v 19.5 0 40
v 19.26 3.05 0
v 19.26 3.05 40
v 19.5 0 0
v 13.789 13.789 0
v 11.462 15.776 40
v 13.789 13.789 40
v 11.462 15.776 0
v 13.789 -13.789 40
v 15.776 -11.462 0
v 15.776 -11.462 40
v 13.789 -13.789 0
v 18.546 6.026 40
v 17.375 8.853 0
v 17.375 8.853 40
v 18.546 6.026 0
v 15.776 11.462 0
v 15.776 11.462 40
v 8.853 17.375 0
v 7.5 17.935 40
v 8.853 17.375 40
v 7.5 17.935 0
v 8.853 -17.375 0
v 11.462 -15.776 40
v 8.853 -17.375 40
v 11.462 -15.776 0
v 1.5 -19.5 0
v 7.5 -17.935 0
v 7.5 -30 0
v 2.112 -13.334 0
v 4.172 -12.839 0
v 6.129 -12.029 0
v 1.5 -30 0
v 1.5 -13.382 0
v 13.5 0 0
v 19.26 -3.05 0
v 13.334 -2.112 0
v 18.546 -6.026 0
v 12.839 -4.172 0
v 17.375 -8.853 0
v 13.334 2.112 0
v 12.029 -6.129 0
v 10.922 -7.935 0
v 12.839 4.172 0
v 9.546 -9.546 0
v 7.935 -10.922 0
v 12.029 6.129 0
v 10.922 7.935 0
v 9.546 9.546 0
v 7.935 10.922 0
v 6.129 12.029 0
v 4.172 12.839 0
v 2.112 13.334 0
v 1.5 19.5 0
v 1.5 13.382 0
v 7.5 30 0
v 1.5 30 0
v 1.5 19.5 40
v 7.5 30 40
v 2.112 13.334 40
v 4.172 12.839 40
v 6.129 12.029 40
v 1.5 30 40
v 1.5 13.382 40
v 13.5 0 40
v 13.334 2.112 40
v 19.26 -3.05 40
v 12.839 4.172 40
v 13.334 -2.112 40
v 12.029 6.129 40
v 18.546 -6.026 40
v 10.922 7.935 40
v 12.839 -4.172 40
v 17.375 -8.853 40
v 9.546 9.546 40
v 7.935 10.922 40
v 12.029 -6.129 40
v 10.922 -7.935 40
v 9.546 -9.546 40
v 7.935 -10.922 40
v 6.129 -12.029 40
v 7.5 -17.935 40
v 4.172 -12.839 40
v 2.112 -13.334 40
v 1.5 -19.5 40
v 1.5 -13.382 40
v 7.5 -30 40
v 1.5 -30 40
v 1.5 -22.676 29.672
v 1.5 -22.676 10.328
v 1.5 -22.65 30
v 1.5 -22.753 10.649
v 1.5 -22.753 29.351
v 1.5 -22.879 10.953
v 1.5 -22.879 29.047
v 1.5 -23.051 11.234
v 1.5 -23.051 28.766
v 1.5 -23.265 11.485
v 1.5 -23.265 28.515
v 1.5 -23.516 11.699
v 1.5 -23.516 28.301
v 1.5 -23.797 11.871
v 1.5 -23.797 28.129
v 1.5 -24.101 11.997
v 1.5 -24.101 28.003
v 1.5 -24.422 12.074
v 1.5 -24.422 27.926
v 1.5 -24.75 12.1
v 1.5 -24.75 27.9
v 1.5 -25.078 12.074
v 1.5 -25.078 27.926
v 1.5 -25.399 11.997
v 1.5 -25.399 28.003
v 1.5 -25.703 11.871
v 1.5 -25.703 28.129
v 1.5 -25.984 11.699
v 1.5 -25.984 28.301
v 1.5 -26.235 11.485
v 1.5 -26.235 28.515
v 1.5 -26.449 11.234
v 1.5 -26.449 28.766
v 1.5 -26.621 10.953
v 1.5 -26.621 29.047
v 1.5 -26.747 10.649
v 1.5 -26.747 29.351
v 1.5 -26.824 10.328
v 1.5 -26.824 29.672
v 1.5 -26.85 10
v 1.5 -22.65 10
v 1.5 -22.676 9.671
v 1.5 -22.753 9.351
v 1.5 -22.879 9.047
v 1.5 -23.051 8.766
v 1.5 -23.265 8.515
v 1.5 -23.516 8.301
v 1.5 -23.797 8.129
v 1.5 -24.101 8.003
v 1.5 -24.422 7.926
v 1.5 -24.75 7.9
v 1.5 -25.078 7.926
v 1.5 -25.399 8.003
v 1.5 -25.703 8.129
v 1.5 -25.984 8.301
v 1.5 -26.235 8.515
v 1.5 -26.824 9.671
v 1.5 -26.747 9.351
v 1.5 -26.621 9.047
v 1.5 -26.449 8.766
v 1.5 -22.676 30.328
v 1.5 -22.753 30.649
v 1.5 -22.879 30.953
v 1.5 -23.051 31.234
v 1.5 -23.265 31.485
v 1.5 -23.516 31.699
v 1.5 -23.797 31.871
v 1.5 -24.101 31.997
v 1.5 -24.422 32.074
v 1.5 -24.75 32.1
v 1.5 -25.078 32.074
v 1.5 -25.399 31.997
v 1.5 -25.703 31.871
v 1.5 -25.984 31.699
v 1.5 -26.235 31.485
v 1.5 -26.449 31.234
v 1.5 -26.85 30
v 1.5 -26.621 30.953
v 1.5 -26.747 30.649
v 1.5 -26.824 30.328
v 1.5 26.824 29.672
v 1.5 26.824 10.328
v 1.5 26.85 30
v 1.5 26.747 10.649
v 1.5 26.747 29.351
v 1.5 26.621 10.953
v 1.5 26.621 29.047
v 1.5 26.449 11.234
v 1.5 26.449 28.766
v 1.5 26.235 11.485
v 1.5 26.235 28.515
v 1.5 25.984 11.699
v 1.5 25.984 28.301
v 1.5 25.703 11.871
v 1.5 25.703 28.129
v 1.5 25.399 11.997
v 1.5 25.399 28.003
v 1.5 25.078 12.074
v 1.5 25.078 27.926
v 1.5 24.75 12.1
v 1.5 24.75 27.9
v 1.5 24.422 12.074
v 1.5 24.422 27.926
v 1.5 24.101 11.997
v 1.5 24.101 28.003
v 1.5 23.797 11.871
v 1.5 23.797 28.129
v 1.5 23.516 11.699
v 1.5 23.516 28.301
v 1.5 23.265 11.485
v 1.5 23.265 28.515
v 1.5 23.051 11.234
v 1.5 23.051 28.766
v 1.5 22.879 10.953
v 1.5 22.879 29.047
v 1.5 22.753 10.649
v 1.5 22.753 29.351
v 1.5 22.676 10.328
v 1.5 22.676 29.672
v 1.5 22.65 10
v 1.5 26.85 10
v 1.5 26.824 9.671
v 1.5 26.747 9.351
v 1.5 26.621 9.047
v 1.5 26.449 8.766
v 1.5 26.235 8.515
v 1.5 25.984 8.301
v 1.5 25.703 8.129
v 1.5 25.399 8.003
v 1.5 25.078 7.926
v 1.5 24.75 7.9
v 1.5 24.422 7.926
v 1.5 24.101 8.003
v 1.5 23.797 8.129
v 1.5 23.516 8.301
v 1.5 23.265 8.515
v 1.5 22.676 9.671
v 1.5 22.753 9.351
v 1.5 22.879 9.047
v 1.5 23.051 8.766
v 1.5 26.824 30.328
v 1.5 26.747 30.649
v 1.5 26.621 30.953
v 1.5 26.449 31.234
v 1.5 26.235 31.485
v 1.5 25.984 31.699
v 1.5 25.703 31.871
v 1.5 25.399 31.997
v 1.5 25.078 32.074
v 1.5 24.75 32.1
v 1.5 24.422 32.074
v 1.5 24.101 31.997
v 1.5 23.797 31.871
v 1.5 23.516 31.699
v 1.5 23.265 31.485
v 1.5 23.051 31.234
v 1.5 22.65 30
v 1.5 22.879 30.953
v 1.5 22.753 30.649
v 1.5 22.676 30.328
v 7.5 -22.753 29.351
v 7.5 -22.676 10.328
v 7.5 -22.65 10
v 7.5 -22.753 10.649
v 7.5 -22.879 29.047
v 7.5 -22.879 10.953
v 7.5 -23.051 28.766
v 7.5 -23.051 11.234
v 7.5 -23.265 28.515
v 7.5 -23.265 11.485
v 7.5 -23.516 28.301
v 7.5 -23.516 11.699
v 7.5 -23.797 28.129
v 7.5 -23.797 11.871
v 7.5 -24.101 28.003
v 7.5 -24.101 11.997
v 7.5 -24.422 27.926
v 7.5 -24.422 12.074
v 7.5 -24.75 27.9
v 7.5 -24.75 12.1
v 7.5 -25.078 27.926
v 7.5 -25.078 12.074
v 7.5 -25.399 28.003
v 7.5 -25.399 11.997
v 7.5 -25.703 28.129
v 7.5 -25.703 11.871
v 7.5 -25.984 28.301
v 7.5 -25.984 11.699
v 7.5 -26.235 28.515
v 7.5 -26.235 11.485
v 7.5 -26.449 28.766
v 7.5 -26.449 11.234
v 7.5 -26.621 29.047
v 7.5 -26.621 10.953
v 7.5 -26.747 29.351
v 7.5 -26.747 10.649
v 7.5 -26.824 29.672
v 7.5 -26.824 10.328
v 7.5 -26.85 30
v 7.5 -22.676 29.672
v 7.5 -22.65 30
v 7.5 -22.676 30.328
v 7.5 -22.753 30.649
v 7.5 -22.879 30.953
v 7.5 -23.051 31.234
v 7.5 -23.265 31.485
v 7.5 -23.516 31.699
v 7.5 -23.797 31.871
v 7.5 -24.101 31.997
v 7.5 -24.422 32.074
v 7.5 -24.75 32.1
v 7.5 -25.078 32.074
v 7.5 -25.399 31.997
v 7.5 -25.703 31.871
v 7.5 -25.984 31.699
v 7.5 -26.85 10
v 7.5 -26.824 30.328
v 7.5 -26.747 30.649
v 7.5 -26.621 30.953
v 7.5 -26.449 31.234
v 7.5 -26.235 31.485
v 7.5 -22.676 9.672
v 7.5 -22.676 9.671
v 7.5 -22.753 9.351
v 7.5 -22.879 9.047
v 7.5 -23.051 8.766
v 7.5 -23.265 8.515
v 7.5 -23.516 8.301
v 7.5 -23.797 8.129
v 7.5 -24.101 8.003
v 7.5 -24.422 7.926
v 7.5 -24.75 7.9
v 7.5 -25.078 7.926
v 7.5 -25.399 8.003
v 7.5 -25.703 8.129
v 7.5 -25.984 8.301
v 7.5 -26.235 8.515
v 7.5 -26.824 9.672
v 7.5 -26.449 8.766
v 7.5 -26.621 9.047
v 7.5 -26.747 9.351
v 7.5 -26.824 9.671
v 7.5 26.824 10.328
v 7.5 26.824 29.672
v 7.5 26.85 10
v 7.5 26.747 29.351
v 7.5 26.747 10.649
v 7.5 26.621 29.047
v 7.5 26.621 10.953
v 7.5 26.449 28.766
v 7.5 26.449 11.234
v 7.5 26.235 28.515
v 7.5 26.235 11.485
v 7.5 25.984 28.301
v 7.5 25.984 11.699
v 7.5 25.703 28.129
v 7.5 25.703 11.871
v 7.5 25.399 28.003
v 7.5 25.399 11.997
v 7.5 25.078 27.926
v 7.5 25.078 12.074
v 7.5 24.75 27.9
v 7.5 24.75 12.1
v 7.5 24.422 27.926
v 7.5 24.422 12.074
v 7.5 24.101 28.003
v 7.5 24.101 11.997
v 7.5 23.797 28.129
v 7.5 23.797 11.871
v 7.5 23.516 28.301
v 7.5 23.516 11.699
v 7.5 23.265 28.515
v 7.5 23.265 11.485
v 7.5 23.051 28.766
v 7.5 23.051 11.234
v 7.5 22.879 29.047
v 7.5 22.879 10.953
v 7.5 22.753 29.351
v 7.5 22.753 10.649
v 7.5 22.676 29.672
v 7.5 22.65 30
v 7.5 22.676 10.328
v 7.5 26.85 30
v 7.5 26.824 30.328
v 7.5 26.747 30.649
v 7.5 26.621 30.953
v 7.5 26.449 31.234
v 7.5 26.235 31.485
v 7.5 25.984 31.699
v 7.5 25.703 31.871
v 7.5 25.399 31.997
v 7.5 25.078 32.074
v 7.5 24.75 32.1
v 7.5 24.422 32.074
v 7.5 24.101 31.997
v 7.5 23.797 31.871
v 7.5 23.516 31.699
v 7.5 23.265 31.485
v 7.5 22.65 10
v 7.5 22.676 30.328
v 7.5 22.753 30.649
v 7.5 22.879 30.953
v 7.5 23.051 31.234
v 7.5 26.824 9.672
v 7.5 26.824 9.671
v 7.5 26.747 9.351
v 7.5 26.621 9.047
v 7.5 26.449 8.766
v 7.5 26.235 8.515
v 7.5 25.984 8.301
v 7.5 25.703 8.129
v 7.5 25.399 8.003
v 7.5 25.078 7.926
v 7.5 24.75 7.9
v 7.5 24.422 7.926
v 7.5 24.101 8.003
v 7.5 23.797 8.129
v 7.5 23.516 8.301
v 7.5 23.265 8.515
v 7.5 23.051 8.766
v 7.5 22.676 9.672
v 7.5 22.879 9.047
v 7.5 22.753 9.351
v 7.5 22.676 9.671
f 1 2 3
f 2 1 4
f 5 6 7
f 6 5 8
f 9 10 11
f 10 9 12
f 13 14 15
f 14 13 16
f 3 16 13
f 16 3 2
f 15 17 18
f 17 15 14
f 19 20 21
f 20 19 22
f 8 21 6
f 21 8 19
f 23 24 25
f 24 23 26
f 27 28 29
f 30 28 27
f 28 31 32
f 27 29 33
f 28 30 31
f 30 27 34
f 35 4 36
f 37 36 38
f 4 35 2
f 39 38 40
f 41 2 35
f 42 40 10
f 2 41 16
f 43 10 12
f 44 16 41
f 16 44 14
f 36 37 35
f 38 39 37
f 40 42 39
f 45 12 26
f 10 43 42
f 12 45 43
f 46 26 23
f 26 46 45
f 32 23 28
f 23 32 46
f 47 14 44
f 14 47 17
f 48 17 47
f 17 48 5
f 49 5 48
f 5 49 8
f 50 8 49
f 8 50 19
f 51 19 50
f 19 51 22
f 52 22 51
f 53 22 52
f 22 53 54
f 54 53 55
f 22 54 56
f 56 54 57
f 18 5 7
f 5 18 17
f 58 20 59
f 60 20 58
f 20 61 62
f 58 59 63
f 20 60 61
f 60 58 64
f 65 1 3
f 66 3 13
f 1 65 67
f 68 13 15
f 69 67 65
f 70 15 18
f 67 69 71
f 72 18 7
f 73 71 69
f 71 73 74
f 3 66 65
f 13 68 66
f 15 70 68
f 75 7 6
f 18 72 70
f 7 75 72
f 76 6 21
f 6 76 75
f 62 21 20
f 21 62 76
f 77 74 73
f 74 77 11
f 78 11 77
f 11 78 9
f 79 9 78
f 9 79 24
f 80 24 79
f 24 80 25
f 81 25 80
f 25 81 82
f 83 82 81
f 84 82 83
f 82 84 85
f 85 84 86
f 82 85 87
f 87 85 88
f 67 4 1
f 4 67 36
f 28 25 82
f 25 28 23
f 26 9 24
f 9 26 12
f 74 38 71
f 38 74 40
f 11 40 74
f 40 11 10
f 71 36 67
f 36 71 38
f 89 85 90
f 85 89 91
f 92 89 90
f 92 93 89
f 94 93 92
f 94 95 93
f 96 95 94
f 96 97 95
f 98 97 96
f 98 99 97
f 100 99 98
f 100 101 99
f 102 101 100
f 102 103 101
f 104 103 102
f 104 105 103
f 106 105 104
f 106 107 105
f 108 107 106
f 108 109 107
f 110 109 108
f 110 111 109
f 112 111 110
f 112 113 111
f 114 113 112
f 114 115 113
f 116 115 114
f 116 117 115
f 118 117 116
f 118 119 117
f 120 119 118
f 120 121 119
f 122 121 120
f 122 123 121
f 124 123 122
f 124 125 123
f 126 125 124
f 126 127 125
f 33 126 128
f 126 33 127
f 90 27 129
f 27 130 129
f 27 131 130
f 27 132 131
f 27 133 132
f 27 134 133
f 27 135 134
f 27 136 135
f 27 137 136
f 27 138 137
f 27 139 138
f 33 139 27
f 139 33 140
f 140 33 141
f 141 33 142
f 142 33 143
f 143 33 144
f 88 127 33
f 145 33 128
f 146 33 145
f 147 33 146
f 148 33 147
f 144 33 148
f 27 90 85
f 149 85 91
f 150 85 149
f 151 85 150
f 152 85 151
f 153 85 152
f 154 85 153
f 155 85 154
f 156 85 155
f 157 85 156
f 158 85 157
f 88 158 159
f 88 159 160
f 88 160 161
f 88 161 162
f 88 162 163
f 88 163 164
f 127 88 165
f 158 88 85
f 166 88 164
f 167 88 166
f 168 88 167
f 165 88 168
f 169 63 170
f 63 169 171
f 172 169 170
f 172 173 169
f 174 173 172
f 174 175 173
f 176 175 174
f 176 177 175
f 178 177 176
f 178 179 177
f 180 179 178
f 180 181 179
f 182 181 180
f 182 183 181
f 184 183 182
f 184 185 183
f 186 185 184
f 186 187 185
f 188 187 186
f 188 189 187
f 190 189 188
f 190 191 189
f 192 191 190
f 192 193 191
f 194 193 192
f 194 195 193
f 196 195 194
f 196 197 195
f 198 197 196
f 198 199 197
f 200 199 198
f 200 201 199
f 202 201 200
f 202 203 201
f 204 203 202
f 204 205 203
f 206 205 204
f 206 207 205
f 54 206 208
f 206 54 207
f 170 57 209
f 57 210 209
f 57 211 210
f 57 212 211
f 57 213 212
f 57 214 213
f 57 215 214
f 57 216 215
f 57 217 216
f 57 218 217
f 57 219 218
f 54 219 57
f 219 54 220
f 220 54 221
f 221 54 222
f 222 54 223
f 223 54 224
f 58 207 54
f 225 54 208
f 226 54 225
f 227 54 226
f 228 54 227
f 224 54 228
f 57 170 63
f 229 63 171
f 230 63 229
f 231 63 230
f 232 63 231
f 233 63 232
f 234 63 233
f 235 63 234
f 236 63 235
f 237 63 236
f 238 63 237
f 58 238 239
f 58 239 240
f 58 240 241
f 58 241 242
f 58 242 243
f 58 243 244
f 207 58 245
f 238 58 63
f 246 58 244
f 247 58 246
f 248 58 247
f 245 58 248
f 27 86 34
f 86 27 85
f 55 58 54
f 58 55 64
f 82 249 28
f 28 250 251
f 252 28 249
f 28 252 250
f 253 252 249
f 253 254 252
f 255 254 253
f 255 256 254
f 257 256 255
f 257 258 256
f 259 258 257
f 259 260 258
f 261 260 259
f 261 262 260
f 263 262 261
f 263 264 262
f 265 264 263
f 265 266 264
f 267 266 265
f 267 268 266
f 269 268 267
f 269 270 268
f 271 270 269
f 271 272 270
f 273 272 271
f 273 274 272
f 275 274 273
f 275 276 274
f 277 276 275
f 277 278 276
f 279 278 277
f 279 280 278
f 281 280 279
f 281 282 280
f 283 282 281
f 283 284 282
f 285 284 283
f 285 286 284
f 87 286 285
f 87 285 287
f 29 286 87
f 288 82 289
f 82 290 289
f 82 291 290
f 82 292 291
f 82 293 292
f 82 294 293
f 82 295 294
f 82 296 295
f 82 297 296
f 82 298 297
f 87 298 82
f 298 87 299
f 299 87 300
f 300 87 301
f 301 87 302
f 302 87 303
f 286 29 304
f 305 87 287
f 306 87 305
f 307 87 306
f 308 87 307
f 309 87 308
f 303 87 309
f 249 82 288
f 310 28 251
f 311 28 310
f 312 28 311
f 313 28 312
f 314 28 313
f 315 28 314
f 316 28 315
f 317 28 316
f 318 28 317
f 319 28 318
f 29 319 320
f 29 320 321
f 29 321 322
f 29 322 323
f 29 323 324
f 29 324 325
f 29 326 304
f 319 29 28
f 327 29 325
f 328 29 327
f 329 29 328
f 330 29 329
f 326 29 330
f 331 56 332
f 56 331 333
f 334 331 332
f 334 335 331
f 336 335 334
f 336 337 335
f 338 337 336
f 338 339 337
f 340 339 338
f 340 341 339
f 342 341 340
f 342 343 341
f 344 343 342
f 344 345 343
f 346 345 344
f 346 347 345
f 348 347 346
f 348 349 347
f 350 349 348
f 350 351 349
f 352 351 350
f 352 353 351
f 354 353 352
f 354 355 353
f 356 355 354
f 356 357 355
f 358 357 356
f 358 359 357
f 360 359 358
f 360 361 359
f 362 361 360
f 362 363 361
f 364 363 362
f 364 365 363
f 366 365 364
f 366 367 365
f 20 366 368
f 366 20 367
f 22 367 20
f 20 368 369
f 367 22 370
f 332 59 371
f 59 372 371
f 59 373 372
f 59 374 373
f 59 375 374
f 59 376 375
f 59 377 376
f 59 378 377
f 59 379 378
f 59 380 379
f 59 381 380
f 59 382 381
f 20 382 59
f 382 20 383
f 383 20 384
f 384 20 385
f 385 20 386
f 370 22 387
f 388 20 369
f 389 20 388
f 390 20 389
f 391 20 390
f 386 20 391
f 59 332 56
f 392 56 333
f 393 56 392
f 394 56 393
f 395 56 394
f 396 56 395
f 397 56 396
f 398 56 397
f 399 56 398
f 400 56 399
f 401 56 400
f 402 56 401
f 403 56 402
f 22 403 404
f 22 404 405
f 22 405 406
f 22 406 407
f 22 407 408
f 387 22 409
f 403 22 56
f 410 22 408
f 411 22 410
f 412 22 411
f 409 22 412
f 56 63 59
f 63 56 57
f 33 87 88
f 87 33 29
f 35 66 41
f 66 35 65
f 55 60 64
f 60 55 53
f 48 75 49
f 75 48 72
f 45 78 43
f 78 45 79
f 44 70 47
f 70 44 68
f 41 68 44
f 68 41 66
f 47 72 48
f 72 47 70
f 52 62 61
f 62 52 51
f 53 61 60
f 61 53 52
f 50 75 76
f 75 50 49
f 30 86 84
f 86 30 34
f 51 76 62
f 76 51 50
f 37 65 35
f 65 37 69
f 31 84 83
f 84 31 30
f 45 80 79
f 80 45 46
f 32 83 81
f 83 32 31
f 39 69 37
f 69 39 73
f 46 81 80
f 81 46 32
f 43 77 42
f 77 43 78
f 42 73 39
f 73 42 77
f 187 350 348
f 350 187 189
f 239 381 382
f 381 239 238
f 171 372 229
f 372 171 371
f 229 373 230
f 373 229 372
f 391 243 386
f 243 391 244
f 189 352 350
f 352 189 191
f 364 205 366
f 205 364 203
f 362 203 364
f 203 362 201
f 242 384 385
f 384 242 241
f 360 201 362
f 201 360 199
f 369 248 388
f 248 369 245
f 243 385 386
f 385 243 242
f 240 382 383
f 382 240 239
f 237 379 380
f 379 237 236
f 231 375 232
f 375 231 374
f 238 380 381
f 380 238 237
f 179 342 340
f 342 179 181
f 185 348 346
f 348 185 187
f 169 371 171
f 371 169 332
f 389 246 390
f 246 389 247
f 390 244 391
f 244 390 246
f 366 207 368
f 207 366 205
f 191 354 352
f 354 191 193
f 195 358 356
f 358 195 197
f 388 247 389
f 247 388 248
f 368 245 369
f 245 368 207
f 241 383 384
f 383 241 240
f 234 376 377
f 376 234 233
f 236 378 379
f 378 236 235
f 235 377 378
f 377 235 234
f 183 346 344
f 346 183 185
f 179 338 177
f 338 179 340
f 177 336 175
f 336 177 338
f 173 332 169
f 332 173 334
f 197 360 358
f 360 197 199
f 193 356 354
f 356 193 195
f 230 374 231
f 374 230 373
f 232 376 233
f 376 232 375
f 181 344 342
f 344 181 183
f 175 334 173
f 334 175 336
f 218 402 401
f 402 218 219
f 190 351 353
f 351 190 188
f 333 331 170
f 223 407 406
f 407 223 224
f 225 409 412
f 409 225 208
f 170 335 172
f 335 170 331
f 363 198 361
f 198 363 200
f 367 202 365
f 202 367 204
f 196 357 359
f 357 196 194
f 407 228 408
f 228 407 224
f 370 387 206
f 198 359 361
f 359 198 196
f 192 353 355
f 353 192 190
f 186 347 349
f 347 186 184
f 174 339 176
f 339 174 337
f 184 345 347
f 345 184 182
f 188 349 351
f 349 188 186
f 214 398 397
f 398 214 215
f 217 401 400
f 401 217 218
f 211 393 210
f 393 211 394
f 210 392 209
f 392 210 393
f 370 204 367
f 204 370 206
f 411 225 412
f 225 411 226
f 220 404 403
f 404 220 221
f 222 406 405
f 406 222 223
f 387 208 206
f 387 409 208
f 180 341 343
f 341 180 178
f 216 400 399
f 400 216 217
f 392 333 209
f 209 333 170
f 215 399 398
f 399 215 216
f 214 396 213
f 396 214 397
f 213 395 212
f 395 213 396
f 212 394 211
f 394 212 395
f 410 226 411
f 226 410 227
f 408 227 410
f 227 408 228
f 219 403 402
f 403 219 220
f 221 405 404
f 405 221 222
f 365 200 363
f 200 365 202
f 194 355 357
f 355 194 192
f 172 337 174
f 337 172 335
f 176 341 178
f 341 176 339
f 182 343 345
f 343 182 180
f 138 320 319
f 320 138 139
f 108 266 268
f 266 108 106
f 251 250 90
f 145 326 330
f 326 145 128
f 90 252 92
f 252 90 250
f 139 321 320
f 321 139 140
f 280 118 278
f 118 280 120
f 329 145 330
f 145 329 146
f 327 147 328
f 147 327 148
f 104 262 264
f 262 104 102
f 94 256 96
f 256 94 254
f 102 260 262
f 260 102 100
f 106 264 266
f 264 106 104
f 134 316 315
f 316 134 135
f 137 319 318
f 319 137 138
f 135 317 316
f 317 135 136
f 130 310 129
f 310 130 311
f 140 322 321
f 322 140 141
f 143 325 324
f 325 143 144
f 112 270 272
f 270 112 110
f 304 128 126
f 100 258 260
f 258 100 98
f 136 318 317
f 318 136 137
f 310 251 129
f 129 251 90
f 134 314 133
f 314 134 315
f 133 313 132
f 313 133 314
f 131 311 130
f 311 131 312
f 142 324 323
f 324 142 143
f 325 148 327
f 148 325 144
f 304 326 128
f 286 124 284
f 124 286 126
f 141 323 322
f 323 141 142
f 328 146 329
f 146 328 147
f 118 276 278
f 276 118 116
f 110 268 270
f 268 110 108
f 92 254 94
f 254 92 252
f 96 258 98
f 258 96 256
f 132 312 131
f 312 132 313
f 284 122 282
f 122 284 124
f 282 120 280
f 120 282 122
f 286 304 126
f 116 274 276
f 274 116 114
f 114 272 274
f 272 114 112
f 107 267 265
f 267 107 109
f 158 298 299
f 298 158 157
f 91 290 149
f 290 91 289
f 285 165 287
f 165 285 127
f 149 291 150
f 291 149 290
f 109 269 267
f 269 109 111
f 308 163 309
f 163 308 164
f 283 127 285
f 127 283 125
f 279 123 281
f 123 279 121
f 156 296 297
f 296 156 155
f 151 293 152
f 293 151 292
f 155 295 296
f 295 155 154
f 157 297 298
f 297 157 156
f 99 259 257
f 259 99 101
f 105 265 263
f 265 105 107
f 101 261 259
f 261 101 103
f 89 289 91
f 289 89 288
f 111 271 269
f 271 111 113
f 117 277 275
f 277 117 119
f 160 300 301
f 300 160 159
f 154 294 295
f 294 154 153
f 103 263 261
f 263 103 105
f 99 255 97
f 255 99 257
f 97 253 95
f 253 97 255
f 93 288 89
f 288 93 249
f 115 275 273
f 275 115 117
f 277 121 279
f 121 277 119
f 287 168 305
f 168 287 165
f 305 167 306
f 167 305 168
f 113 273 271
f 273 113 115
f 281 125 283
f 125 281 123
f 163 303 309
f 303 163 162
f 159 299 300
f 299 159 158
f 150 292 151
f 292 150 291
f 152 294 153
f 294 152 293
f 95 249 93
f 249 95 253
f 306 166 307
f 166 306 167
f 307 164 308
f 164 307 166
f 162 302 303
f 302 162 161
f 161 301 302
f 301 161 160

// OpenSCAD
// file: ../SRC/WINDGAUGE01A_D01.scad
$fn=40; // model faces resolution.
include <../configuration.scad>

WINDGAUGE01A_D01();
//Drzak na sloup - cast bez drzaku anemometru
module WINDGAUGE01A_D01(){
	
difference()
    {
    union()
        {
        //základní válec
        cylinder(h=D02_vyska_uchytky,r=(D02_prumer_obruby+2*D02_sila_materialu)/2,center=true);
		//úchytové plošky		
        translate([D02_dotahova_vzdalenost+D02_sila_materialu/2,0,0]){cube([D02_sila_materialu,D02_delka_celeho_uchytu,D02_vyska_uchytky],center=true);}
		}
    
    //válec na odečet
    cylinder(h=D02_vyska_uchytky+0.01,r=D02_prumer_obruby/2,center=true);     
	        
    //kvádr na odecet
	translate([D02_dotahova_vzdalenost-(D02_prumer_obruby+2*D02_sila_materialu)/2,0,0]){cube([D02_prumer_obruby+2*D02_sila_materialu,D02_prumer_obruby+2*D02_sila_materialu,D02_vyska_uchytky+0.01],center=true);}
		
	//otvory na sroub
	translate([D02_dotahova_vzdalenost,(D02_delka_celeho_uchytu/2-D02_prumer_obruby/2-D02_sila_materialu)/2+D02_prumer_obruby/2+D02_sila_materialu,D02_vyska_uchytky/4]){rotate([0,90,0]){cylinder(h=D02_sila_materialu+0.01,r=D02_prumer_uchytneho_sroubu/2);}}
    
     //drzak matky
    translate([D02_dotahova_vzdalenost+D02_sila_materialu-D02_vyska_matky,(D02_delka_celeho_uchytu/2-D02_prumer_obruby/2-D02_sila_materialu)/2+D02_prumer_obruby/2+D02_sila_materialu,D02_vyska_uchytky/4]){rotate([0,90,0]){ cylinder (h = D02_vyska_matky+0.01, r= (D02_sirka_matky+0.2)/2, $fn=6);}}
   
     
        
    translate([D02_dotahova_vzdalenost,(D02_delka_celeho_uchytu/2-D02_prumer_obruby/2-D02_sila_materialu)/2+D02_prumer_obruby/2+D02_sila_materialu,-D02_vyska_uchytky/4]){rotate([0,90,0]){cylinder(h=D02_sila_materialu+0.01,r=D02_prumer_uchytneho_sroubu/2);}}
    
     //drzak matky
    translate([D02_dotahova_vzdalenost+D02_sila_materialu-D02_vyska_matky,(D02_delka_celeho_uchytu/2-D02_prumer_obruby/2-D02_sila_materialu)/2+D02_prumer_obruby/2+D02_sila_materialu,-D02_vyska_uchytky/4]){rotate([0,90,0]){ cylinder (h = D02_vyska_matky+0.01, r= (D02_sirka_matky+0.2)/2, $fn=6);}}
        
	translate([D02_dotahova_vzdalenost,-((D02_delka_celeho_uchytu/2-D02_prumer_obruby/2-D02_sila_materialu)/2+D02_prumer_obruby/2+D02_sila_materialu),-D02_vyska_uchytky/4]){rotate([0,90,0]){cylinder(h=D02_sila_materialu+0.01,r=D02_prumer_uchytneho_sroubu/2);}}
    
     //drzak matky
    translate([D02_dotahova_vzdalenost+D02_sila_materialu-D02_vyska_matky,-((D02_delka_celeho_uchytu/2-D02_prumer_obruby/2-D02_sila_materialu)/2+D02_prumer_obruby/2+D02_sila_materialu),-D02_vyska_uchytky/4]){rotate([0,90,0]){ cylinder (h = D02_vyska_matky+0.01, r= (D02_sirka_matky+0.2)/2, $fn=6);}}

    translate([D02_dotahova_vzdalenost,-((D02_delka_celeho_uchytu/2-D02_prumer_obruby/2-D02_sila_materialu)/2+D02_prumer_obruby/2+D02_sila_materialu),D02_vyska_uchytky/4]){rotate([0,90,0]){cylinder(h=D02_sila_materialu+0.01,r=D02_prumer_uchytneho_sroubu/2);}}	
    
     //drzak matky
    translate([D02_dotahova_vzdalenost+D02_sila_materialu-D02_vyska_matky,-((D02_delka_celeho_uchytu/2-D02_prumer_obruby/2-D02_sila_materialu)/2+D02_prumer_obruby/2+D02_sila_materialu),D02_vyska_uchytky/4]){rotate([0,90,0]){ cylinder (h = D02_vyska_matky+0.01, r= (D02_sirka_matky+0.2)/2, $fn=6);}}
	
    }
}

module WINDGAUGE01A_D01_2(){
	
difference()
    {
    union()
        {
        //základní válec
        cylinder(h=D02_vyska_uchytky,r=(D02_prumer_obruby+2*D02_sila_materialu)/2,center=true);
		//úchytové plošky		
        translate([D02_dotahova_vzdalenost+D02_sila_materialu/2,0,0]){cube([D02_sila_materialu,D02_delka_celeho_uchytu,D02_vyska_uchytky],center=true);}
		}
    
    //válec na odečet
    cylinder(h=D02_vyska_uchytky+0.01,r=D02_prumer_obruby/2,center=true);     
	        
    //kvádr na odecet
	translate([D02_dotahova_vzdalenost-(D02_prumer_obruby+2*D02_sila_materialu)/2,0,0]){cube([D02_prumer_obruby+2*D02_sila_materialu,D02_prumer_obruby+2*D02_sila_materialu,D02_vyska_uchytky+0.01],center=true);}
		
	//otvory na sroub
	translate([D02_dotahova_vzdalenost,(D02_delka_celeho_uchytu/2-D02_prumer_obruby/2-D02_sila_materialu)/2+D02_prumer_obruby/2+D02_sila_materialu,D02_vyska_uchytky/4]){rotate([0,90,0]){cylinder(h=D02_sila_materialu+0.01,r=D02_prumer_uchytneho_sroubu/2);}}
    
    
   
     
        
    translate([D02_dotahova_vzdalenost,(D02_delka_celeho_uchytu/2-D02_prumer_obruby/2-D02_sila_materialu)/2+D02_prumer_obruby/2+D02_sila_materialu,-D02_vyska_uchytky/4]){rotate([0,90,0]){cylinder(h=D02_sila_materialu+0.01,r=D02_prumer_uchytneho_sroubu/2);}}
    
     
        
	translate([D02_dotahova_vzdalenost,-((D02_delka_celeho_uchytu/2-D02_prumer_obruby/2-D02_sila_materialu)/2+D02_prumer_obruby/2+D02_sila_materialu),-D02_vyska_uchytky/4]){rotate([0,90,0]){cylinder(h=D02_sila_materialu+0.01,r=D02_prumer_uchytneho_sroubu/2);}}
    
    

    translate([D02_dotahova_vzdalenost,-((D02_delka_celeho_uchytu/2-D02_prumer_obruby/2-D02_sila_materialu)/2+D02_prumer_obruby/2+D02_sila_materialu),D02_vyska_uchytky/4]){rotate([0,90,0]){cylinder(h=D02_sila_materialu+0.01,r=D02_prumer_uchytneho_sroubu/2);}}	
    
    
	
    }
}
// file: ../SRC/polyScrewThread_r1.scad
/*
 *    polyScrewThread_r1.scad    by aubenc @ Thingiverse
 *
 * This script contains the library modules that can be used to generate
 * threaded rods, screws and nuts.
 *
 * http://www.thingiverse.com/thing:8796
 *
 * CC Public Domain
 */


/* Example:
 * Just a 100mm long threaded rod.
 *
 * screw_thread(15,   // Outer diameter of the thread
 *               4,   // Step, traveling length per turn, also, tooth height, whatever...
 *              55,   // Degrees for the shape of the tooth 
 *                       (XY plane = 0, Z = 90, btw, 0 and 90 will/should not work...)
 *             100,   // Length (Z) of the tread
 *            PI/2,   // Resolution, one face each "PI/2" mm of the perimeter, 
 *               0);  // Countersink style:
 *                         -2 - Not even flat ends
 *                         -1 - Bottom (countersink'd and top flat)
 *                          0 - None (top and bottom flat)
 *                          1 - Top (bottom flat)
 *                          2 - Both (countersink'd)
 */
module screw_thread(od,st,lf0,lt,rs,cs)
{
    or=od/2;
    ir=or-st/2*cos(lf0)/sin(lf0);
    pf=2*PI*or;
    sn=floor(pf/rs);
    lfxy=360/sn;
    ttn=round(lt/st+1);
    zt=st/sn;

    intersection()
    {
        if (cs >= -1)
        {
           thread_shape(cs,lt,or,ir,sn,st);
        }

        full_thread(ttn,st,sn,zt,lfxy,or,ir);
    }
}

/* Example.
 * A nut for the thread rod example.
 *
 * hexa_nut(24,  // Distance between flats
 *           8,  // Height 
 *           4,  // Step height (the half will be used to countersink the ends)
 *          55,  // Degrees (same as used for the screw_thread example)
 *          15,  // Outer diameter of the thread to match
 *         0.5)  // Resolution, you may want to set this to small values
 *                  (quite high res) to minimize overhang issues
 *
 */
module hex_nut(df,hg,sth,clf,cod,crs)
{

    difference()
    {
        hex_head(hg,df);

        hex_countersink_ends(sth/2,cod,clf,crs,hg);

        screw_thread(cod,sth,clf,hg,crs,-2);
    }
}


module hex_screw(od,st,lf0,lt,rs,cs,df,hg,ntl,ntd)
{
    ntr=od/2-(st/2)*cos(lf0)/sin(lf0);

    union()
    {
        hex_head(hg,df);

        translate([0,0,hg])
        if ( ntl == 0 )
        {
            cylinder(h=0.01, r=ntr, center=true);
        }
        else
        {
            if ( ntd == -1 )
            {
                cylinder(h=ntl+0.01, r=ntr, $fn=floor(od*PI/rs), center=false);
            }
            else if ( ntd == 0 )
            {
                union()
                {
                    cylinder(h=ntl-st/2,
                             r=od/2, $fn=floor(od*PI/rs), center=false);

                    translate([0,0,ntl-st/2])
                    cylinder(h=st/2,
                             r1=od/2, r2=ntr, 
                             $fn=floor(od*PI/rs), center=false);
                }
            }
            else
            {
                cylinder(h=ntl, r=ntd/2, $fn=ntd*PI/rs, center=false);
            }
        }

        translate([0,0,ntl+hg]) screw_thread(od,st,lf0,lt,rs,cs);
    }
}

module hex_screw_0(od,st,lf0,lt,rs,cs,df,hg,ntl,ntd)
{
    ntr=od/2-(st/2)*cos(lf0)/sin(lf0);

    union()
    {
        hex_head_0(hg,df);

        translate([0,0,hg])
        if ( ntl == 0 )
        {
            cylinder(h=0.01, r=ntr, center=true);
        }
        else
        {
            if ( ntd == -1 )
            {
                cylinder(h=ntl+0.01, r=ntr, $fn=floor(od*PI/rs), center=false);
            }
            else if ( ntd == 0 )
            {
                union()
                {
                    cylinder(h=ntl-st/2,
                             r=od/2, $fn=floor(od*PI/rs), center=false);

                    translate([0,0,ntl-st/2])
                    cylinder(h=st/2,
                             r1=od/2, r2=ntr, 
                             $fn=floor(od*PI/rs), center=false);
                }
            }
            else
            {
                cylinder(h=ntl, r=ntd/2, $fn=ntd*PI/rs, center=false);
            }
        }

        translate([0,0,ntl+hg]) screw_thread(od,st,lf0,lt,rs,cs);
    }
}

module thread_shape(cs,lt,or,ir,sn,st)
{
    if ( cs == 0 )
    {
        cylinder(h=lt, r=or, $fn=sn, center=false);
    }
    else
    {
        union()
        {
            translate([0,0,st/2])
              cylinder(h=lt-st+0.005, r=or, $fn=sn, center=false);

            if ( cs == -1 || cs == 2 )
            {
                cylinder(h=st/2, r1=ir, r2=or, $fn=sn, center=false);
            }
            else
            {
                cylinder(h=st/2, r=or, $fn=sn, center=false);
            }

            translate([0,0,lt-st/2])
            if ( cs == 1 || cs == 2 )
            {
                  cylinder(h=st/2, r1=or, r2=ir, $fn=sn, center=false);
            }
            else
            {
                cylinder(h=st/2, r=or, $fn=sn, center=false);
            }
        }
    }
}

module full_thread(ttn,st,sn,zt,lfxy,or,ir)
{
  if(ir >= 0.2)
  {
    for(i=[0:ttn-1])
    {
        for(j=[0:sn-1])
			assign( pt = [	[0,                  0,                  i*st-st            ],
                        [ir*cos(j*lfxy),     ir*sin(j*lfxy),     i*st+j*zt-st       ],
                        [ir*cos((j+1)*lfxy), ir*sin((j+1)*lfxy), i*st+(j+1)*zt-st   ],
								[0,0,i*st],
                        [or*cos(j*lfxy),     or*sin(j*lfxy),     i*st+j*zt-st/2     ],
                        [or*cos((j+1)*lfxy), or*sin((j+1)*lfxy), i*st+(j+1)*zt-st/2 ],
                        [ir*cos(j*lfxy),     ir*sin(j*lfxy),     i*st+j*zt          ],
                        [ir*cos((j+1)*lfxy), ir*sin((j+1)*lfxy), i*st+(j+1)*zt      ],
                        [0,                  0,                  i*st+st            ]	])
        {
            polyhedron(points=pt,
              		  triangles=[	[1,0,3],[1,3,6],[6,3,8],[1,6,4],
											[0,1,2],[1,4,2],[2,4,5],[5,4,6],[5,6,7],[7,6,8],
											[7,8,3],[0,2,3],[3,2,7],[7,2,5]	]);
        }
    }
  }
  else
  {
    echo("Step Degrees too agresive, the thread will not be made!!");
    echo("Try to increase de value for the degrees and/or...");
    echo(" decrease the pitch value and/or...");
    echo(" increase the outer diameter value.");
  }
}

module hex_head(hg,df)
{
	rd0=df/2/sin(60);
	x0=0;	x1=df/2;	x2=x1+hg/2;
	y0=0;	y1=hg/2;	y2=hg;

	intersection()
	{
	   cylinder(h=hg, r=rd0, $fn=6, center=false);

		rotate_extrude(convexity=10, $fn=6*round(df*PI/6/0.5))
		polygon([ [x0,y0],[x1,y0],[x2,y1],[x1,y2],[x0,y2] ]);
	}
}

module hex_head_0(hg,df)
{
    cylinder(h=hg, r=df/2/sin(60), $fn=6, center=false);
}

module hex_countersink_ends(chg,cod,clf,crs,hg)
{
    translate([0,0,-0.1])
    cylinder(h=chg+0.01, 
             r1=cod/2, 
             r2=cod/2-(chg+0.1)*cos(clf)/sin(clf),
             $fn=floor(cod*PI/crs), center=false);

    translate([0,0,hg-chg+0.1])
    cylinder(h=chg+0.01, 
             r1=cod/2-(chg+0.1)*cos(clf)/sin(clf),
             r2=cod/2, 
             $fn=floor(cod*PI/crs), center=false);
}
// file: ../configuration.scad
//$fn=40; // model faces resolution.

//COMMON PARAMETERS
global_clearance = 0.5; // additional space where needed due to printer precision
layer_thickness = 0.3; // layer which is going to be removed after printing
//M3 x 12 Bolt
M3_nut_diameter = 6.6;
M3_nut_height = 2.7;
M3_bolt_diameter = 3.2;
M3_bolt_head_height = 3;
M3_bolt_length = 12;
//M5 Bolt
M5_bolt_diameter = 5.5;
M5_nut_height = 4.5;
M5_nut_diameter = 9.4;
//M6 Bolt
M6_bolt_diameter = 6.5;
M6_nut_height = 4.9;
M6_nut_diameter = 11.8;


//----------------------------------------------------------------
//----------------------------------------------------------------
//WINDGAUGE02A_S02 - Parametry pro hlavni valec anemometru
S01_hloubka_zavitu=4;
S01_vyska=110; //80
S01_prumer_vnitrni=50;
S01_sila_materialu=1.2;
S01_vyska_horni_zavit=10;
S01_vyska_spodniho_zavitu=10;
S01_sila_drzaku_RJ11=3; //vyška drážky
S01_hrana_A_RJ11=12.3;
S01_hrana_B_RJ11=19;
S01_tolerance_zavit=1.5;

//Rozměry ložiska se závity
//LO_spodni_prumer=22;
LO_spodni_prumer=17.2; //bez krytu
LO_vyska_bez_krytu=15;
LO_doraz_prumer=44.3;
LO_horni_prumer=7.7;
LO_vyska_spodni_doraz=5;
LO_vyska_horni_doraz=9;
LO_vyska_dorazu=0;





//Obecné parametry
prumer_osicky=5.1;



//Parametry loziska
lozisko_prumer_vnitrni=4.9;
lozisko_prumer_vnejsi=16.1;
lozisko_vyska=5;
lozisko_prekryv=1.5;

//Parametry magnetu
magnet_prumer=6.3;
magnet_vyska=5;
magnet_zapusteni=2;
magnet_tolerance_prumeru=0.2;

//Parametry sroubu
prumer_sroubu=3.4;
prumer_hlavy_sroubu=8.2;
vyska_hlavy_sroubu=4.3;
vyska_matky=3;
sirka_matky=6.7;

sirka_matky_tol=0.175;
prumer_orechu=10;

//WINDGAUGE02A_R01 //pro lopatku
L01_hrana_drzaku_a=10;
L01_hrana_drzaku_b=3;
L01_delka_uchytu=19;
L01_prumer_lopatky=40;
L01_sila_materialu_lopatky=0.9;

//WINDGAUGE02A_D02 Anemometer holder
//   | |   Top ring with Screw-thread
//  /   \  Body
// |_____| Base
D02_magnet_base_height = 4.5 + 1.5*global_clearance; // HS-13 M5 magnet height without bolt
D02_magnet_diameter = 16.1 + global_clearance; // HS-13 M5 magnet diameter
D02_flat_magnet_diameter = 18.1 + global_clearance; // HS-13 M5 magnet diameter
D02_wall_thickness = 5; // body wall thickness
D02_connector_spacing = 40; // main body cut-through for connectors
D02_base_diameter = 140; // diameter of holder base
D02_base_height = max(M6_nut_height + 1.5,
                      D02_magnet_base_height + M5_nut_height/2 + 1.5); // height of holder base
D02_body_height = 60 - D02_base_height; // height of body between base and top ring
D02_screw_diameter = S01_prumer_vnitrni - S01_tolerance_zavit; // scew-thread diameter based on stand S01
D02_thread_height = S01_vyska_spodniho_zavitu; // screw-thread height based on stand S01
D02_top_ring_inner_diameter = D02_screw_diameter - 6; // inner diameter of top ring
D02_top_ring_outer_diameter = D02_screw_diameter + 4; // outer diameter of top ring
D02_top_ring_height = D02_thread_height + 5; // height of top ring
D02_total_height = D02_base_height + D02_body_height + D02_top_ring_height; // total height of anemometer holder
// Following parameters are obsolete, maintained only for compatibility.
D01_material_pod_zavitem = D02_top_ring_height - D02_thread_height;
D01_material_za_zavitem = D02_screw_diameter - D02_top_ring_inner_diameter;
D01_material_pred_zavitem = D02_top_ring_outer_diameter - D02_screw_diameter;
D01_polomer_zakladny = D02_base_diameter/2;
D01_sila_setny_spodniho_drzaku=D02_wall_thickness;
D01_vyska_spodni_casti_drzaku = D02_body_height + D02_base_height;
D01_sirka_otvoru_pro_konektor = D02_connector_spacing;
D01_ucyhtna_matice_material_nad = D02_base_height - M6_nut_height;
D01_uchytna_matice_vyska = M6_nut_height;
D01_uchytna_matice_sirka = M6_nut_diameter;
D01_uchytny_sroub_prumer = M6_bolt_diameter;

// Following parameters are actually used in D01 model.
//WINDGAUGE02A_D02 //uchyt na sloup
D02_sila_materialu=6;
D02_vyska_uchytky=40;
D02_prumer_obruby=27; // 3/4 trubka
D02_delka_celeho_uchytu=60;
D02_dotahova_vzdalenost=1.5;
D02_prumer_uchytneho_sroubu=4.2;
D02_sirka_matky=9.1; //pro M4
D02_vyska_matky=3;


//WINDGAUGE02A_R01 //rotor s prekritim statoru
R01_vyska_prekryti_statoru=10;
R01_sila_materialu_pro_prekriti=1.3;
R01_mezera_mezi_statorem_rotorem=3;

//WINDGAUGE02A_R03 //drzak magnetu
R05_sirka_matky=10;



R03_prumer_zavitu=40;
R04_zavit_vyska=5;
R02_zavit_vyska=10;
R01_zavit_vyska=5;
R03_mezera_mezi_statorem_rotorem=3;

R02_delka_kridla=45;
R02_vzdalenost_der=25;

R02_delka_vyrovnnavaci_tyce=35;
R02_hrana_drzaku=14;
R02_sila_materialu_pod_tyci=5;
R02_sila_materialu_kridla=1.2;
R02_sila_materialu_kridla_tolerance=0.3;

R05_vyska_kridla=100;
R05_delka_kridla=100;


//S04
I2CDIFF01A_sirka_kon=16.5; //sirka konektoru
I2CDIFF01A_vyska_kon=13.5; //vyska konektoru
I2CDIFF01A_sirka_mod_otvory=4; //kolik modul zabira der
I2CDIFF01A_vyska_PCB=2; //vyska mezi albase a konektorem
S04_sila_materialu=2;

//S04_USBI2C01A
USBI2C01A_sirka_kon=12; //sirka konektoru
USBI2C01A_vyska_kon=11; //vyska konektoru
USBI2C01A_sirka_mod_otvory=3; //kolik modul zabira der
USBI2C01A_vyska_PCB=2; //vyska mezi albase a konektorem


//WINDGAUGE03A_R03 // Venturi tube
R03_wide_D = 36; // Venturi wide tube inner diameter
R03_narrow_D = R03_wide_D/1.4; // Venturi narrow tube inner diameter
R03_global_clearance = global_clearance; // additional space where needed due to printer precision
R03_PCB_top_rim = 5.5; // vertical distance from top of tube to top of PCB
R03_PCB_height = 41; // height of PCB casing - if changed check casing
R03_PCB_width = 14; // width of PCB casing - if changed check casing
R03_PCB_depth = 3.7; // depth of PCB casing - if changed check casing
R03_PCB_connector_overlay = 2.5; // additional depth of PCB casing on connectors side - if changed check casing
R03_PCB_elevation = 2; // additional elevation of PCB for waterproofing
R03_air_tube_diameter = 2; // air tubes diameter
R03_sensor_housing_offset = 15;  // distance from venturi tube height to sensor housing drop
R03_sensor_offset = 2.2;  // SDP33 distance from PCB border to sensor
R03_sensor_pitch = 4.3;  // SDP33 distance between sensors
R03_sensor_diameter = 3.5;  // SDP33 sensor diameter
R03_sensor_depth = 2.5;  // SDP33 sensor depth
R03_slip_ring_offset = 0; // slip-ring offset from tube center
R03_venturi_tube_height = 150;  // Venturi tube height (limited by max print size)
R03_wall_thickness = 3; // Venturi tube wall thickness
R03_sealing_ring_thickness = 1.5; // sealing ring size
R03_fin_width = 0.8; // width of vertical stabilizator
R03_fin_length = 150; // length of vertical stabilizator
R03_fin_height = 150; // height of vertical stabilizator
R03_fin_holder_width = M3_bolt_length + M3_nut_height;
R03_fin_holder_height = M3_nut_diameter + 2*R03_wall_thickness;
R03_fin_holder_depth = R03_wide_D/2 + R03_fin_holder_height;
R03_balance_shelf_width = 20; // width of shelf for balance weights
R03_balance_shelf_height = 10; // height of shelf for balance weights
// main file
$fn=100; // model faces resolution.
include <../configuration.scad>


use <../SRC/polyScrewThread_r1.scad>
use <../SRC/WINDGAUGE01A_D01.scad>


PI=3.141592;
 rotate([0, 0, 0])
    translate([0,0,D02_vyska_uchytky/2])
WINDGAUGE01A_D01_2();


    
  
